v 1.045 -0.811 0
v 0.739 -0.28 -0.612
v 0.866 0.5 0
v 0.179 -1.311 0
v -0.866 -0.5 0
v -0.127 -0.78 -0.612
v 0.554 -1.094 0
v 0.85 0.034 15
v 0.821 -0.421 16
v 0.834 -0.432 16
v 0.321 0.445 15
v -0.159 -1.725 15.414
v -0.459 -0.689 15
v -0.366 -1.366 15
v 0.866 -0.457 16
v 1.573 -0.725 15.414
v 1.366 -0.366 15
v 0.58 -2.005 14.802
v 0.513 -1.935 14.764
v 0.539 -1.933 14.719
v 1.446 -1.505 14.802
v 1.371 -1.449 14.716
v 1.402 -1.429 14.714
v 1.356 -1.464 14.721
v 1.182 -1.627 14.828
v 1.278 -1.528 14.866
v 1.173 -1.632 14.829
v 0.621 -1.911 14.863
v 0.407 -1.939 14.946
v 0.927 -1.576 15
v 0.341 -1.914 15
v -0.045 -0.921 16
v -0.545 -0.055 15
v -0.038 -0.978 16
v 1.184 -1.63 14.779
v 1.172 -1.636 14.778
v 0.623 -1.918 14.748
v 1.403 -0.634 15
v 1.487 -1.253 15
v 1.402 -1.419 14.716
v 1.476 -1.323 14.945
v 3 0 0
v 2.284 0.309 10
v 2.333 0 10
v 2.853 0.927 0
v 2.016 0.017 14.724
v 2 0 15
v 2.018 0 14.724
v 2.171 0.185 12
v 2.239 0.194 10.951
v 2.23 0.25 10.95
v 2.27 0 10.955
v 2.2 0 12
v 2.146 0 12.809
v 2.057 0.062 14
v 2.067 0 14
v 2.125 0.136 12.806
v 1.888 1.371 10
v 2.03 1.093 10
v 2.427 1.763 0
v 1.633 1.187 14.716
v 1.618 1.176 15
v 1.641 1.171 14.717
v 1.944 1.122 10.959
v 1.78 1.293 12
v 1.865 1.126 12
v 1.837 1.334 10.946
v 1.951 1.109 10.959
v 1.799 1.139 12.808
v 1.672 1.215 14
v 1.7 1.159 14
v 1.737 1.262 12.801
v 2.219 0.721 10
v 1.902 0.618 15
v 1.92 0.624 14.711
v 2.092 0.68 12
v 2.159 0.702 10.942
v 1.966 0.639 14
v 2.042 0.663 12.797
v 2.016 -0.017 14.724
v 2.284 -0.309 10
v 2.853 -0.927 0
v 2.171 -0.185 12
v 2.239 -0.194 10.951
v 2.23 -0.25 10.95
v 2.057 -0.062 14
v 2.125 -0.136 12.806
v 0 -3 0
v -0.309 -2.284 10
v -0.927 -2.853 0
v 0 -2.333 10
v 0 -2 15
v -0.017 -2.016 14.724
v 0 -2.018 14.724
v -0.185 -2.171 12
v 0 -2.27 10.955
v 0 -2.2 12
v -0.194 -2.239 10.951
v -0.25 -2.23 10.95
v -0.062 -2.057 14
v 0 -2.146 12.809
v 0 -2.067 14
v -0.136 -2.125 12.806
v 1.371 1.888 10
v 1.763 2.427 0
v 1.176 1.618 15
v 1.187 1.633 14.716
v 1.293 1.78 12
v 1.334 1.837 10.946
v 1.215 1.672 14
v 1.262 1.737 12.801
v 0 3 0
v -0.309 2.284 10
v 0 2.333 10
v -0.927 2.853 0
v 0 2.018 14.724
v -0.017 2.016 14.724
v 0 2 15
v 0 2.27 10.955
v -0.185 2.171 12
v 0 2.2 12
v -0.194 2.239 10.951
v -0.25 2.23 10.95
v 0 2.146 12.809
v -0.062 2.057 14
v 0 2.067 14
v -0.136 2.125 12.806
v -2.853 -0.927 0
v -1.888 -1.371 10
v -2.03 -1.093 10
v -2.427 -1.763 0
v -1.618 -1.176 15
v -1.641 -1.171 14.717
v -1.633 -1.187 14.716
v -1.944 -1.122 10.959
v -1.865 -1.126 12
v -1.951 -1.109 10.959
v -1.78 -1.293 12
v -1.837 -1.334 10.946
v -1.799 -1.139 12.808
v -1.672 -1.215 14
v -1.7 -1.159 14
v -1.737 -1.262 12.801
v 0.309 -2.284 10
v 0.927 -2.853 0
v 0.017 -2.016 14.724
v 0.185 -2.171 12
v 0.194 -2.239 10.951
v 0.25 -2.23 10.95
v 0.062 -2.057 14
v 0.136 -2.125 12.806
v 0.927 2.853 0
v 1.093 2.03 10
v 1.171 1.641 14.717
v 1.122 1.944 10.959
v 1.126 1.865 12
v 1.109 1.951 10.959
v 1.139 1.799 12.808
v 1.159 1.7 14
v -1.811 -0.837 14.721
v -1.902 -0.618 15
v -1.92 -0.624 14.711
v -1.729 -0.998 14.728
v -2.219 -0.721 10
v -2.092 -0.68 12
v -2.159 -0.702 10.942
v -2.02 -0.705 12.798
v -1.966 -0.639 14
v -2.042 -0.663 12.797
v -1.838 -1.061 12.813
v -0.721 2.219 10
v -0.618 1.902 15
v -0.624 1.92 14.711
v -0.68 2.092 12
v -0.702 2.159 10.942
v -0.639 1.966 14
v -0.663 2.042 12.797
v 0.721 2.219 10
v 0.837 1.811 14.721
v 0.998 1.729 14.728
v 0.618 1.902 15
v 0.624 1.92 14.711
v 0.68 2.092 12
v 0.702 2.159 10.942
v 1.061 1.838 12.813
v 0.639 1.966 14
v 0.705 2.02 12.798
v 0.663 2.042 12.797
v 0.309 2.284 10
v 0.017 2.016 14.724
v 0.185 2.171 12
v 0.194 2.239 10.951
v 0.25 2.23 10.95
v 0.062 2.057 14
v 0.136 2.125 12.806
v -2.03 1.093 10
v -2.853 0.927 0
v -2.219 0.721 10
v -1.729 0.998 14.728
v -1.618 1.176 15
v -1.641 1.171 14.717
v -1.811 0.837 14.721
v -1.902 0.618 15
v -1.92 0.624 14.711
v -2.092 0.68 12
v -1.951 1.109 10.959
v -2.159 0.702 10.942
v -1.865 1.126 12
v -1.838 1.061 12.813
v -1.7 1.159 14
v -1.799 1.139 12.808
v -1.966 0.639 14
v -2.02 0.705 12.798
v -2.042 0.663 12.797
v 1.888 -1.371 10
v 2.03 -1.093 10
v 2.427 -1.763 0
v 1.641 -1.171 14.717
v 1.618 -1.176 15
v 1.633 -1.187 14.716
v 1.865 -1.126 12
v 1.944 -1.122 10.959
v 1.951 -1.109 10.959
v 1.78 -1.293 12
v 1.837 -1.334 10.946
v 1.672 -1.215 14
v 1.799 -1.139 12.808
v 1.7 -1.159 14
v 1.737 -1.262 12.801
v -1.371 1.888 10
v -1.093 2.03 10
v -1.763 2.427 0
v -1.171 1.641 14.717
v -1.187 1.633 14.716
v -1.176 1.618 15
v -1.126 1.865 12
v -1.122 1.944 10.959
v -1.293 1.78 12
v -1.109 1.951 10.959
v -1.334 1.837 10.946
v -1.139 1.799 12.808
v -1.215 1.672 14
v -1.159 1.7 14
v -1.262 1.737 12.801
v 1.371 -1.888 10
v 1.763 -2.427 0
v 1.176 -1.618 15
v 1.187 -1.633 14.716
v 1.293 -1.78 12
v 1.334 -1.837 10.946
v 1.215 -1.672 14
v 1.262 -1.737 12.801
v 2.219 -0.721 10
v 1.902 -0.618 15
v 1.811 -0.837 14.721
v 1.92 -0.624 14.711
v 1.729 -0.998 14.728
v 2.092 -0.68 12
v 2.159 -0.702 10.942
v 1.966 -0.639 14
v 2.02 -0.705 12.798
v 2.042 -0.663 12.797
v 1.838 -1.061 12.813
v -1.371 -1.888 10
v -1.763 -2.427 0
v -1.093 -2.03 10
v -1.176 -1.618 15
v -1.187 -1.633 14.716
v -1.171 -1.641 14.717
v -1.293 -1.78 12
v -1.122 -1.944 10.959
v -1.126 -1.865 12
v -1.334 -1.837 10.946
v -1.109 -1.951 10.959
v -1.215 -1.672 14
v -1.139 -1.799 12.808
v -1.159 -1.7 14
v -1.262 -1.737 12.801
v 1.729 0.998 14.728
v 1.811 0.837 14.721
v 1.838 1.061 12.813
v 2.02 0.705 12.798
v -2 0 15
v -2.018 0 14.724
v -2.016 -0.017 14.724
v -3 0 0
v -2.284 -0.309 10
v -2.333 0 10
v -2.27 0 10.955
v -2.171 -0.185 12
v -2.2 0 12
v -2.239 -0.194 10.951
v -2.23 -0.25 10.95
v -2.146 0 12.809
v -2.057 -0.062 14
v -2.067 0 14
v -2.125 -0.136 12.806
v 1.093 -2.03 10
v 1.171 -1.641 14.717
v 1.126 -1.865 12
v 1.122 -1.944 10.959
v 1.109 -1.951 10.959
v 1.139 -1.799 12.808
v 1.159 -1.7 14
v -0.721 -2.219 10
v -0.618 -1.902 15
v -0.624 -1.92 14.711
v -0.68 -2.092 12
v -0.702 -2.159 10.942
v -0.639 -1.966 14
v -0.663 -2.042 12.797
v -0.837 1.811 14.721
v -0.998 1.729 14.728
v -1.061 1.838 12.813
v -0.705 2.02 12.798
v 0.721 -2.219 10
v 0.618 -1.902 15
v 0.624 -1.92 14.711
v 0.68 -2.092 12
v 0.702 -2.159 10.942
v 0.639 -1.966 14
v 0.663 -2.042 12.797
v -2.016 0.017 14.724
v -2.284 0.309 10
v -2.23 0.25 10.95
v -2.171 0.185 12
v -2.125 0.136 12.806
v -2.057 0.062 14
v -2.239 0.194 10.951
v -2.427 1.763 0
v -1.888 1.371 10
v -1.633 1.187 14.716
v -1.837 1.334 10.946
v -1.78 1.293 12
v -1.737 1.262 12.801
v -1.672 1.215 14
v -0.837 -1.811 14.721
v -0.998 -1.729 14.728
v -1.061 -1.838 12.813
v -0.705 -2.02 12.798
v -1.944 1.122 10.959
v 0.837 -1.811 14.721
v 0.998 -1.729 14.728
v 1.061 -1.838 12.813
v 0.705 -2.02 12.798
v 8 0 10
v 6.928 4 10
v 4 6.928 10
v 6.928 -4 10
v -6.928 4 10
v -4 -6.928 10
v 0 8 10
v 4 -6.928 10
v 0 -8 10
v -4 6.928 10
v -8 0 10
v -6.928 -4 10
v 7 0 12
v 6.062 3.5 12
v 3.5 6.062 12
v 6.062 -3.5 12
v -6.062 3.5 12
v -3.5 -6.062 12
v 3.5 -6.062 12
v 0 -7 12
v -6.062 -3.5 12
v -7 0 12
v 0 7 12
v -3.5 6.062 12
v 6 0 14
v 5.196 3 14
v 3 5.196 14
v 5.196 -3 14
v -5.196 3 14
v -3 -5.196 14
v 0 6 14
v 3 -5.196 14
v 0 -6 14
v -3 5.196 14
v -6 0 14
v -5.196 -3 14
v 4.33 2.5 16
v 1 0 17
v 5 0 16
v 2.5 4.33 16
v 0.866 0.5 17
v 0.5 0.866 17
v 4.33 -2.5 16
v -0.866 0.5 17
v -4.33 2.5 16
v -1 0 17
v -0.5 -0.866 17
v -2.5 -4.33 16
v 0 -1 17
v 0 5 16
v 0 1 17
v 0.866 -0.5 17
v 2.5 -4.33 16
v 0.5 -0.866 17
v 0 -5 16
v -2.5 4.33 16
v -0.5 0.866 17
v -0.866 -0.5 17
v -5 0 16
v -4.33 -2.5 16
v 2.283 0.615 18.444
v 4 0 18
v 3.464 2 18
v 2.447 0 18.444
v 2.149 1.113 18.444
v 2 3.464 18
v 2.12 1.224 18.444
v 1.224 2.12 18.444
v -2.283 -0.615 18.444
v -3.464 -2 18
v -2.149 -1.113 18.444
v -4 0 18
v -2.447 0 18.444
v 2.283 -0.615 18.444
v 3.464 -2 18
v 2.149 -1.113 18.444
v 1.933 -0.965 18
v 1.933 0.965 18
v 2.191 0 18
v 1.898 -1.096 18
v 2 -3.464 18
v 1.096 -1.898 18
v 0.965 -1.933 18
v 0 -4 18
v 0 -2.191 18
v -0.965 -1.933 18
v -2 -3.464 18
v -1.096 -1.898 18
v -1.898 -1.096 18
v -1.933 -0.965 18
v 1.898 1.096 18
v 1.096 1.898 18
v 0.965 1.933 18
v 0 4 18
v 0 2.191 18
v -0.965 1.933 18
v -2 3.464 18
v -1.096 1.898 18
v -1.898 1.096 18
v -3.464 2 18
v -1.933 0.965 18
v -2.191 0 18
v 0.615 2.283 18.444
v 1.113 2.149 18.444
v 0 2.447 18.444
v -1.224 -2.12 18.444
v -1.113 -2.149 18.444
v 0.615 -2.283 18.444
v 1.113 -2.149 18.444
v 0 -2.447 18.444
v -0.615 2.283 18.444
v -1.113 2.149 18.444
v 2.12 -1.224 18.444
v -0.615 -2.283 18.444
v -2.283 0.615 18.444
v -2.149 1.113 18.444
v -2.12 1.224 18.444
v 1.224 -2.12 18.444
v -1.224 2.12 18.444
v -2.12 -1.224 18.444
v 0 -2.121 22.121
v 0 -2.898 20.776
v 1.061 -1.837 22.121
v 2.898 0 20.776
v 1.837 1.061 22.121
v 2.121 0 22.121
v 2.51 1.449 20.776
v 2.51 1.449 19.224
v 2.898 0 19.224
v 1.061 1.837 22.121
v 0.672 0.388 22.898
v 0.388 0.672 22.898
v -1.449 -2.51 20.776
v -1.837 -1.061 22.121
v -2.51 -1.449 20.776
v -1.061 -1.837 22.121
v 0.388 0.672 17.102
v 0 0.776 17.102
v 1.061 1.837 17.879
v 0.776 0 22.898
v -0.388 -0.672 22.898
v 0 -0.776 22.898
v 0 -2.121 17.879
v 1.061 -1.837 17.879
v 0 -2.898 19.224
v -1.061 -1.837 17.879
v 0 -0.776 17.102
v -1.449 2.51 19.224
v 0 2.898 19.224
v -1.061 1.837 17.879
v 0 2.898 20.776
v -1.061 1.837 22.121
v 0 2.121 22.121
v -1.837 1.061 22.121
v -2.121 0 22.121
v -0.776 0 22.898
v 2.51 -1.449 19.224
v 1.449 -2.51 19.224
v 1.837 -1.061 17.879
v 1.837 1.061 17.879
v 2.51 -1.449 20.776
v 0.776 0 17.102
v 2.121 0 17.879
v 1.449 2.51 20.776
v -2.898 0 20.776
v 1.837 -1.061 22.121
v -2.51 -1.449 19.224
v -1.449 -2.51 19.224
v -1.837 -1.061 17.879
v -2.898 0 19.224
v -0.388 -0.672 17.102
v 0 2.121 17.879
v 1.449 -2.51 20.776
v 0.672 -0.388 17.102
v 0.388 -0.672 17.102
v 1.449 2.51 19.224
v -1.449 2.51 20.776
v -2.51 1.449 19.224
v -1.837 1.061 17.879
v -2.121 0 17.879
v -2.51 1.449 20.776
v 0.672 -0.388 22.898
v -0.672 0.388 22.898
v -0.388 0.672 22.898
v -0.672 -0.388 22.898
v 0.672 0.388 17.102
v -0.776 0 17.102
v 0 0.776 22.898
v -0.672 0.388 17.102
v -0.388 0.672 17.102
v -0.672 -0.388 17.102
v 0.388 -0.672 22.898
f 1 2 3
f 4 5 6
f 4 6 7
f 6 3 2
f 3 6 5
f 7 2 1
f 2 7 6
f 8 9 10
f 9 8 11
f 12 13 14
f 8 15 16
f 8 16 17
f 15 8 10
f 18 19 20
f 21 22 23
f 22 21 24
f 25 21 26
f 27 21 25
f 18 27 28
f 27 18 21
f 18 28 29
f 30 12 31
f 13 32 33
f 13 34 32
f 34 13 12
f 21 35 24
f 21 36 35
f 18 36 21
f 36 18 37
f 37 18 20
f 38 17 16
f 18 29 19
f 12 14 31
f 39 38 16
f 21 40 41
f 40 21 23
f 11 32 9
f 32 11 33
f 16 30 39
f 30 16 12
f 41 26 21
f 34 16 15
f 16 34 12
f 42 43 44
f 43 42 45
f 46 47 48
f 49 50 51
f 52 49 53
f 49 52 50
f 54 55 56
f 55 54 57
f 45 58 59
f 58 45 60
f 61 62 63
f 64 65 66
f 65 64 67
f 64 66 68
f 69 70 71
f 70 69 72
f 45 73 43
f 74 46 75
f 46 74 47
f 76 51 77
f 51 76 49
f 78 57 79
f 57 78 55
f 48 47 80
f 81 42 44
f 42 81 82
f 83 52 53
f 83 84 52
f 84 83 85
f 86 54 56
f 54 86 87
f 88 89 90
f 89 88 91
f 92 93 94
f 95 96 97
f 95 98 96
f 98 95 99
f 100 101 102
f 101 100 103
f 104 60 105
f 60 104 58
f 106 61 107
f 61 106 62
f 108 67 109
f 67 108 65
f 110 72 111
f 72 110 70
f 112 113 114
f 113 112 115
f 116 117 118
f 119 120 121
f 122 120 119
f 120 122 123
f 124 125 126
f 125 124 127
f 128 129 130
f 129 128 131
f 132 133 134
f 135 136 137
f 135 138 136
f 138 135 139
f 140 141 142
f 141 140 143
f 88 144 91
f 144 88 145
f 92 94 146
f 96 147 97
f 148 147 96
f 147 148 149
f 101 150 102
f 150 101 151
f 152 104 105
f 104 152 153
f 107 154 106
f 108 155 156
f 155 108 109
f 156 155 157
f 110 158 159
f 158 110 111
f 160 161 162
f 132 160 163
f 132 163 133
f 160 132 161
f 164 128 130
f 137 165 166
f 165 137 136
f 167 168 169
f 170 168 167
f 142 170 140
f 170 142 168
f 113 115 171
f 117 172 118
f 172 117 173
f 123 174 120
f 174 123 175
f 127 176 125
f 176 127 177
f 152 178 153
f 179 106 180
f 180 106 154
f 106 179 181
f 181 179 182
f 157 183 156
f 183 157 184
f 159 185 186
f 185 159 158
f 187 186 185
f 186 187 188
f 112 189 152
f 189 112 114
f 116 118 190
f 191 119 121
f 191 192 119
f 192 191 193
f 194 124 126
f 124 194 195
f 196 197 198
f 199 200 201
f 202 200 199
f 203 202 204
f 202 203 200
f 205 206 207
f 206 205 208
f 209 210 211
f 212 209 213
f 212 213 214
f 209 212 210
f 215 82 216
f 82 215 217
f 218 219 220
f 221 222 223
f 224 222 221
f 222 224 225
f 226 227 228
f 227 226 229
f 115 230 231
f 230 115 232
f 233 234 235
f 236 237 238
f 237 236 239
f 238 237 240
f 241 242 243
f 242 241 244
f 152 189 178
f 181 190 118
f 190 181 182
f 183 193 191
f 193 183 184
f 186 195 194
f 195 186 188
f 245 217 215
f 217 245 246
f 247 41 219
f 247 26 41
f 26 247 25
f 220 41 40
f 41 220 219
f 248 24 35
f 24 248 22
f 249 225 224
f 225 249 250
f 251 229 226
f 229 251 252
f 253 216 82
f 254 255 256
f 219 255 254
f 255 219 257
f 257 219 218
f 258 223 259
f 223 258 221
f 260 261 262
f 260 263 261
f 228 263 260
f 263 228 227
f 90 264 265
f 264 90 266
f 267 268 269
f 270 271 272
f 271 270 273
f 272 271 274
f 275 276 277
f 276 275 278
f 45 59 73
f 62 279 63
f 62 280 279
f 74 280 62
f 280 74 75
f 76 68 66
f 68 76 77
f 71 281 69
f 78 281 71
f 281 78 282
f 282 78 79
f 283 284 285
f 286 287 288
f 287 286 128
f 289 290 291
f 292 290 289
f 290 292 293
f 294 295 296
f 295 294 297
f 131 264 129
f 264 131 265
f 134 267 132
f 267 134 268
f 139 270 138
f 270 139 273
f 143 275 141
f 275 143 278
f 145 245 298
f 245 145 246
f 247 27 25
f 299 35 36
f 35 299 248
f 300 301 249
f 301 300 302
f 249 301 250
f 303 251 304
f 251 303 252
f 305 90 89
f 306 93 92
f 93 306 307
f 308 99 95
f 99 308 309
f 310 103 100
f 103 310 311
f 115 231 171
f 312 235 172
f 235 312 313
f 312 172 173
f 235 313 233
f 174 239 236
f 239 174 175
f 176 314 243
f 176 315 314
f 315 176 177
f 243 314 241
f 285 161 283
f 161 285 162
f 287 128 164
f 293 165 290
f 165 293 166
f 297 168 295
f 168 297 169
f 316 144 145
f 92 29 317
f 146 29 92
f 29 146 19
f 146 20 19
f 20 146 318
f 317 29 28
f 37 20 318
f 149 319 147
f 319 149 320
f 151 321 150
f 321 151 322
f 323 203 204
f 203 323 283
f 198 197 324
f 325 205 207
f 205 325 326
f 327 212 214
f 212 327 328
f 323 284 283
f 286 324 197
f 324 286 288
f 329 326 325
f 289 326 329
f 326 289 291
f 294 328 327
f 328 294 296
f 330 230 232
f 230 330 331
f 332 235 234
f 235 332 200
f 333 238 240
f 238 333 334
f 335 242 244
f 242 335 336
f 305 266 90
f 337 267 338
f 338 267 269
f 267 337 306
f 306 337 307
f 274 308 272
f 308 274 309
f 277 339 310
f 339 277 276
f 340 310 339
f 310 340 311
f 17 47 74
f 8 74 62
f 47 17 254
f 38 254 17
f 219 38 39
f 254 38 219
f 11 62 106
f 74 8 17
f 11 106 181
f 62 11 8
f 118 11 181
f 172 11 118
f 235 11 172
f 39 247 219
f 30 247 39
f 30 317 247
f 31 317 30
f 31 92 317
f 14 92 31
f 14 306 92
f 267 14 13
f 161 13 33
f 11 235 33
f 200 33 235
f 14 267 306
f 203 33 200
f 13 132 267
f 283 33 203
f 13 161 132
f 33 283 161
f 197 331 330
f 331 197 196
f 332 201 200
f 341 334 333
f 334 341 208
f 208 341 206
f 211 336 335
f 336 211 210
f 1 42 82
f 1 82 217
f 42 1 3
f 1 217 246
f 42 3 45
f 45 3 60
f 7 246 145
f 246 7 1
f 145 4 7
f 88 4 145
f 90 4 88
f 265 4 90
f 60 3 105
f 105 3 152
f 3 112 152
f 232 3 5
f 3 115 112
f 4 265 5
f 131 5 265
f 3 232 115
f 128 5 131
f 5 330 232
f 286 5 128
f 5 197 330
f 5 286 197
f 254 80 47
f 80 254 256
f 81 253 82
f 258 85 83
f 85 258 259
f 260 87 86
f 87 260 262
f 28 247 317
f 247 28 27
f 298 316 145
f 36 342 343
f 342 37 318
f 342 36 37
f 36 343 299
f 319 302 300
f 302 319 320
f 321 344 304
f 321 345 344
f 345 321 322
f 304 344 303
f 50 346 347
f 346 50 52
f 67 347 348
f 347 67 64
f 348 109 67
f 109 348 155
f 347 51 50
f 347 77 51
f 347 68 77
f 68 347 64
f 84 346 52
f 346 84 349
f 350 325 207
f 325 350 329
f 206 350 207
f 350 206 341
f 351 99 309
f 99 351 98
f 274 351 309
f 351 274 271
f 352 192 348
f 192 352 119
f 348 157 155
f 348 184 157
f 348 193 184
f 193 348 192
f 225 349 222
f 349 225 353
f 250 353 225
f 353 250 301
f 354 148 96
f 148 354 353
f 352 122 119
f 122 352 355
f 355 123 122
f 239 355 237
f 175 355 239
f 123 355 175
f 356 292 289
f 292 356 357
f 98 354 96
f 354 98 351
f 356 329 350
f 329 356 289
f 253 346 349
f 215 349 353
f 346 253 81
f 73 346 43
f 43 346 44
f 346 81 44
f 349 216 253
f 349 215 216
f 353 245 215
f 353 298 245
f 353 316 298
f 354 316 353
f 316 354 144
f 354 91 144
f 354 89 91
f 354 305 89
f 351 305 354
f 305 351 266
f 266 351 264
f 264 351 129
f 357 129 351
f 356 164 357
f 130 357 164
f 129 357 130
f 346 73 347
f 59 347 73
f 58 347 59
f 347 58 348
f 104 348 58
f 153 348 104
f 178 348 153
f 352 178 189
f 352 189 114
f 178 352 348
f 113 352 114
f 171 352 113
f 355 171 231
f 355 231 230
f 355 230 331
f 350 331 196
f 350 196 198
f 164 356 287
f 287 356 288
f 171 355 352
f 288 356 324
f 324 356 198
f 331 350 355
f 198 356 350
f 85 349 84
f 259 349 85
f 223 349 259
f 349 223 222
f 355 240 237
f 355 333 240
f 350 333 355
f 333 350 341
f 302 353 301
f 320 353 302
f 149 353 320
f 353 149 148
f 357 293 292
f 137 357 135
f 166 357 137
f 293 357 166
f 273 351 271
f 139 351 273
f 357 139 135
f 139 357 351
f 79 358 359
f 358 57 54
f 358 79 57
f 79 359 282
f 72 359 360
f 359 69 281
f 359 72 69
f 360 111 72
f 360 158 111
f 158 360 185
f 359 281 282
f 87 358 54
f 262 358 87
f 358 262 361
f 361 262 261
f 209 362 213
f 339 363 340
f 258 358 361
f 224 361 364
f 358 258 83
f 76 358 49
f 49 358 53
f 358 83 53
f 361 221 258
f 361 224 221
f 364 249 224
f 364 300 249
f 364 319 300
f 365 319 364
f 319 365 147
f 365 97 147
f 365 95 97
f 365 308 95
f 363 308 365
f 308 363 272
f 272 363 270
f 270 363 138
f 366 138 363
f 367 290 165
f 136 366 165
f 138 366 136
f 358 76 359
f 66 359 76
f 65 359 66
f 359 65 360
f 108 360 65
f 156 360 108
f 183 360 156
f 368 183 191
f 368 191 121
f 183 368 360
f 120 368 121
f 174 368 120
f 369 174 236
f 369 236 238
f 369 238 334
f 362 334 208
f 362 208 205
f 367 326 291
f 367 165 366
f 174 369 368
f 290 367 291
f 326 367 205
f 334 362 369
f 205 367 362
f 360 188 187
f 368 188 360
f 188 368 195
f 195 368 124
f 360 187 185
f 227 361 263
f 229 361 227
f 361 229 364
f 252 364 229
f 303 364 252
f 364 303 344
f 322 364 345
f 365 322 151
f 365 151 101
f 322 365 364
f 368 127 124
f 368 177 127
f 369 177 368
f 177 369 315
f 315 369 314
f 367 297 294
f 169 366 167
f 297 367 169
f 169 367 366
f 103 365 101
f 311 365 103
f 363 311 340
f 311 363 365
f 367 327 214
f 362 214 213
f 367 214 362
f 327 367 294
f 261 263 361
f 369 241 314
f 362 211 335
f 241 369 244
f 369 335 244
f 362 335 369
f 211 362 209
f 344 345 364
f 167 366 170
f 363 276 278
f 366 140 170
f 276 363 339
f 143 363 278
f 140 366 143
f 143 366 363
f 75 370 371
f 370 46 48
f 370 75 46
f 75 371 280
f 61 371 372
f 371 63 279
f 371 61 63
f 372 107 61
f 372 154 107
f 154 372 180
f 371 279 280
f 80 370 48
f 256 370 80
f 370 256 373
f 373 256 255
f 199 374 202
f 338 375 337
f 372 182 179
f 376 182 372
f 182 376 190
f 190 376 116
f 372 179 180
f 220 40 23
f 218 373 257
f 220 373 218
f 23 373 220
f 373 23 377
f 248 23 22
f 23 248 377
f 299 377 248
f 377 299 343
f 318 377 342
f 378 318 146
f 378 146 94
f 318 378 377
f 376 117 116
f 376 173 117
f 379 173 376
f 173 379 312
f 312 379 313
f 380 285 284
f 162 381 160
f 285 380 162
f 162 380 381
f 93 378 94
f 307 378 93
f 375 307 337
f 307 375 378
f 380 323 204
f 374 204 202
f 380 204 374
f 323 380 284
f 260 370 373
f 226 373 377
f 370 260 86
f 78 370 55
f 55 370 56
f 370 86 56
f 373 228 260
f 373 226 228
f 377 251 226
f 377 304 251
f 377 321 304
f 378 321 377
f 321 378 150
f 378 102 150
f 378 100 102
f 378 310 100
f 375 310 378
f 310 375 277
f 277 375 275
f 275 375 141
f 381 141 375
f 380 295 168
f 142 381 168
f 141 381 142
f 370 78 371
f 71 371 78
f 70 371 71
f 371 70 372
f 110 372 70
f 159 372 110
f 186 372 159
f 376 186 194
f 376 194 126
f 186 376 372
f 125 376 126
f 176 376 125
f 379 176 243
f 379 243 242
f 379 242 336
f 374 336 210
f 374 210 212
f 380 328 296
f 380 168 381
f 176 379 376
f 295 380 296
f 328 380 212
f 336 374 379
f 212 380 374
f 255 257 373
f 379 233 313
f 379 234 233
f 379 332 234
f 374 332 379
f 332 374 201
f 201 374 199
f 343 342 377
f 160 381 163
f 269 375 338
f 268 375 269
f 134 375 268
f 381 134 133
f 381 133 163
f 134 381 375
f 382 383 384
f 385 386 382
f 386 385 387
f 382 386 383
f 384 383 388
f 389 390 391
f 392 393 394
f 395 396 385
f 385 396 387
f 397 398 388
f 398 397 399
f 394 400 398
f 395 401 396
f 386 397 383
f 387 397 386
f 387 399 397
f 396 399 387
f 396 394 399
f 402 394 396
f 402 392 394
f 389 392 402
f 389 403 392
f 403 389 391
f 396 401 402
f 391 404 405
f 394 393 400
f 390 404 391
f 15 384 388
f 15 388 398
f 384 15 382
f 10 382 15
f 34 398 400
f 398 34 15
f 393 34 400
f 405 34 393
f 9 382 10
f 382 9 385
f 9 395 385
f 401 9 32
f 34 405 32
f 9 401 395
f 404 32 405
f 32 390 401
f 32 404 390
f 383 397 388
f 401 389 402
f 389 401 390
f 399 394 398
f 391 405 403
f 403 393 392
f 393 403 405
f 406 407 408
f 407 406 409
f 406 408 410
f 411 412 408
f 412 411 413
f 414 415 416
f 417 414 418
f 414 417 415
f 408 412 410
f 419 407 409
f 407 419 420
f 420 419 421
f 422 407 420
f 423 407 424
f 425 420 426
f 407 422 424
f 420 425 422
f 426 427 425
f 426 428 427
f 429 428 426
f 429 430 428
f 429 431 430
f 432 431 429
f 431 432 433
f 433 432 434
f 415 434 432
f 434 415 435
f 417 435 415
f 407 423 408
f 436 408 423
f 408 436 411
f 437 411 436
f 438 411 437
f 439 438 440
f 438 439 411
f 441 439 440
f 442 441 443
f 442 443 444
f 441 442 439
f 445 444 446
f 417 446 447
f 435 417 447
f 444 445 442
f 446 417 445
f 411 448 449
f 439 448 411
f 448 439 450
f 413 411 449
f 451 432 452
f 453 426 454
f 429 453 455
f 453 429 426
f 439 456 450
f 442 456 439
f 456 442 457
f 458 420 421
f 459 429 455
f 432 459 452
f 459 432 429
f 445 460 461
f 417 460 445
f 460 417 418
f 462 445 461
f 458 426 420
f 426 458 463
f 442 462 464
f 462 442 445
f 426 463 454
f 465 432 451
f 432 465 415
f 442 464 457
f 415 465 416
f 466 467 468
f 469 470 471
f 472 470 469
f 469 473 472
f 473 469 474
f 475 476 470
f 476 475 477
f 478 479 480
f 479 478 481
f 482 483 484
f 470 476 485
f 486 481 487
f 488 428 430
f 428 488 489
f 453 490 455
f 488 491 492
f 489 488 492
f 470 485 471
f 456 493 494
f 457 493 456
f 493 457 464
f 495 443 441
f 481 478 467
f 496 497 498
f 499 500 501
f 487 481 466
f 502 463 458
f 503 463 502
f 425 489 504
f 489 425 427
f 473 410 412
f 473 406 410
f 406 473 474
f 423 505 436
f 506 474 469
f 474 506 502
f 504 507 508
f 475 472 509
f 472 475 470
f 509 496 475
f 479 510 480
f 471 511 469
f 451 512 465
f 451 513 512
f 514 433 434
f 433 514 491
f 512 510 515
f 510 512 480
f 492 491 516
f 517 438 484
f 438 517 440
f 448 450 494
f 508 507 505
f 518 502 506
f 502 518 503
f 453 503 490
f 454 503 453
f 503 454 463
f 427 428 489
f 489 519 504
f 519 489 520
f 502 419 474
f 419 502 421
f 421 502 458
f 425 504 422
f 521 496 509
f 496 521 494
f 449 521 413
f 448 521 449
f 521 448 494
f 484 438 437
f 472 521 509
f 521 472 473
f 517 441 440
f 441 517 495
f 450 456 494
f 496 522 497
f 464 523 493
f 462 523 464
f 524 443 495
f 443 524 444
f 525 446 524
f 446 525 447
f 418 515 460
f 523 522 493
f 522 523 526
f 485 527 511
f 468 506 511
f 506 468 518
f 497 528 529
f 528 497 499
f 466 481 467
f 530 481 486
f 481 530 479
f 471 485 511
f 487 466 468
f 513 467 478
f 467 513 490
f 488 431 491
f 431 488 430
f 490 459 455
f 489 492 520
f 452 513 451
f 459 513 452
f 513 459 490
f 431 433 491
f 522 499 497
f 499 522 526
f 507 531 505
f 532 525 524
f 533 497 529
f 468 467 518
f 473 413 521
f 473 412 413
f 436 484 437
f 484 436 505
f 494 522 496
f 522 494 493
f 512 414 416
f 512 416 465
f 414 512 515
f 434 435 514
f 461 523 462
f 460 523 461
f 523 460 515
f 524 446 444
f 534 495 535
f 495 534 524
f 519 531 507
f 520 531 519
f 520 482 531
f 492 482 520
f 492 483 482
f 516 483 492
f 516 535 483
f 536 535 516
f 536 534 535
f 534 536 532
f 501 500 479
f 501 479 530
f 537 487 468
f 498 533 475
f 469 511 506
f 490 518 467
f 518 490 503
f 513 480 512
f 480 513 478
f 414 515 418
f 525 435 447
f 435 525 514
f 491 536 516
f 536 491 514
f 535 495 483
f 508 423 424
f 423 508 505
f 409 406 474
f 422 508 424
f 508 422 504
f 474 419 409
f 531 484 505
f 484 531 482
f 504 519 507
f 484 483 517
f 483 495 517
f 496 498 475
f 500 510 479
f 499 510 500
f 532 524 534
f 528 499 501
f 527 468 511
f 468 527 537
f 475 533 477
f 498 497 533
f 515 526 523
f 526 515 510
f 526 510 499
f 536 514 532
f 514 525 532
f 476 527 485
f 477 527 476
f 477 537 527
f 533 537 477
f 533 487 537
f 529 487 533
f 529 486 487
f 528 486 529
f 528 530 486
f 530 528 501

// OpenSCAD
// A stylized pine tree with a textured trunk.
// Generated for: 2026-07-11 Tree

module pine_tree() {
    // Trunk
    color("Sienna") {
        cylinder(h=15, r1=3, r2=2, $fn=20);
        // Texture detail for trunk
        for (i = [0 : 4]) {
            translate([0, 0, i * 3.5])
            rotate([45, i * 90, 30])
            cylinder(h=2, r=1, $fn=6);
        }
    }

    // Foliage - Layer 1 (Bottom)
    color("ForestGreen") {
        translate([0, 0, 10])
        cylinder(h=1, r1=8, r2=2, $fn=12);
        
        translate([0, 0, 12])
        cylinder(h=1, r1=7, r2=1, $fn=12);
        
        translate([0, 0, 14])
        cylinder(h=1, r1=6, r2=0.5, $fn=12);
    }
    
    // Foliage - Layer 2 (Middle)
    color("DarkGreen") {
        translate([0, 0, 16])
        cylinder(h=1, r1=5, r2=1, $fn=12);
        
        translate([0, 0, 18])
        cylinder(h=1, r1=4, r2=0.5, $fn=12);
    }
    
    // Foliage - Layer 3 (Top)
    color("Green") {
        translate([0, 0, 20])
        sphere(r=3, $fn=12);
    }
}

pine_tree();
